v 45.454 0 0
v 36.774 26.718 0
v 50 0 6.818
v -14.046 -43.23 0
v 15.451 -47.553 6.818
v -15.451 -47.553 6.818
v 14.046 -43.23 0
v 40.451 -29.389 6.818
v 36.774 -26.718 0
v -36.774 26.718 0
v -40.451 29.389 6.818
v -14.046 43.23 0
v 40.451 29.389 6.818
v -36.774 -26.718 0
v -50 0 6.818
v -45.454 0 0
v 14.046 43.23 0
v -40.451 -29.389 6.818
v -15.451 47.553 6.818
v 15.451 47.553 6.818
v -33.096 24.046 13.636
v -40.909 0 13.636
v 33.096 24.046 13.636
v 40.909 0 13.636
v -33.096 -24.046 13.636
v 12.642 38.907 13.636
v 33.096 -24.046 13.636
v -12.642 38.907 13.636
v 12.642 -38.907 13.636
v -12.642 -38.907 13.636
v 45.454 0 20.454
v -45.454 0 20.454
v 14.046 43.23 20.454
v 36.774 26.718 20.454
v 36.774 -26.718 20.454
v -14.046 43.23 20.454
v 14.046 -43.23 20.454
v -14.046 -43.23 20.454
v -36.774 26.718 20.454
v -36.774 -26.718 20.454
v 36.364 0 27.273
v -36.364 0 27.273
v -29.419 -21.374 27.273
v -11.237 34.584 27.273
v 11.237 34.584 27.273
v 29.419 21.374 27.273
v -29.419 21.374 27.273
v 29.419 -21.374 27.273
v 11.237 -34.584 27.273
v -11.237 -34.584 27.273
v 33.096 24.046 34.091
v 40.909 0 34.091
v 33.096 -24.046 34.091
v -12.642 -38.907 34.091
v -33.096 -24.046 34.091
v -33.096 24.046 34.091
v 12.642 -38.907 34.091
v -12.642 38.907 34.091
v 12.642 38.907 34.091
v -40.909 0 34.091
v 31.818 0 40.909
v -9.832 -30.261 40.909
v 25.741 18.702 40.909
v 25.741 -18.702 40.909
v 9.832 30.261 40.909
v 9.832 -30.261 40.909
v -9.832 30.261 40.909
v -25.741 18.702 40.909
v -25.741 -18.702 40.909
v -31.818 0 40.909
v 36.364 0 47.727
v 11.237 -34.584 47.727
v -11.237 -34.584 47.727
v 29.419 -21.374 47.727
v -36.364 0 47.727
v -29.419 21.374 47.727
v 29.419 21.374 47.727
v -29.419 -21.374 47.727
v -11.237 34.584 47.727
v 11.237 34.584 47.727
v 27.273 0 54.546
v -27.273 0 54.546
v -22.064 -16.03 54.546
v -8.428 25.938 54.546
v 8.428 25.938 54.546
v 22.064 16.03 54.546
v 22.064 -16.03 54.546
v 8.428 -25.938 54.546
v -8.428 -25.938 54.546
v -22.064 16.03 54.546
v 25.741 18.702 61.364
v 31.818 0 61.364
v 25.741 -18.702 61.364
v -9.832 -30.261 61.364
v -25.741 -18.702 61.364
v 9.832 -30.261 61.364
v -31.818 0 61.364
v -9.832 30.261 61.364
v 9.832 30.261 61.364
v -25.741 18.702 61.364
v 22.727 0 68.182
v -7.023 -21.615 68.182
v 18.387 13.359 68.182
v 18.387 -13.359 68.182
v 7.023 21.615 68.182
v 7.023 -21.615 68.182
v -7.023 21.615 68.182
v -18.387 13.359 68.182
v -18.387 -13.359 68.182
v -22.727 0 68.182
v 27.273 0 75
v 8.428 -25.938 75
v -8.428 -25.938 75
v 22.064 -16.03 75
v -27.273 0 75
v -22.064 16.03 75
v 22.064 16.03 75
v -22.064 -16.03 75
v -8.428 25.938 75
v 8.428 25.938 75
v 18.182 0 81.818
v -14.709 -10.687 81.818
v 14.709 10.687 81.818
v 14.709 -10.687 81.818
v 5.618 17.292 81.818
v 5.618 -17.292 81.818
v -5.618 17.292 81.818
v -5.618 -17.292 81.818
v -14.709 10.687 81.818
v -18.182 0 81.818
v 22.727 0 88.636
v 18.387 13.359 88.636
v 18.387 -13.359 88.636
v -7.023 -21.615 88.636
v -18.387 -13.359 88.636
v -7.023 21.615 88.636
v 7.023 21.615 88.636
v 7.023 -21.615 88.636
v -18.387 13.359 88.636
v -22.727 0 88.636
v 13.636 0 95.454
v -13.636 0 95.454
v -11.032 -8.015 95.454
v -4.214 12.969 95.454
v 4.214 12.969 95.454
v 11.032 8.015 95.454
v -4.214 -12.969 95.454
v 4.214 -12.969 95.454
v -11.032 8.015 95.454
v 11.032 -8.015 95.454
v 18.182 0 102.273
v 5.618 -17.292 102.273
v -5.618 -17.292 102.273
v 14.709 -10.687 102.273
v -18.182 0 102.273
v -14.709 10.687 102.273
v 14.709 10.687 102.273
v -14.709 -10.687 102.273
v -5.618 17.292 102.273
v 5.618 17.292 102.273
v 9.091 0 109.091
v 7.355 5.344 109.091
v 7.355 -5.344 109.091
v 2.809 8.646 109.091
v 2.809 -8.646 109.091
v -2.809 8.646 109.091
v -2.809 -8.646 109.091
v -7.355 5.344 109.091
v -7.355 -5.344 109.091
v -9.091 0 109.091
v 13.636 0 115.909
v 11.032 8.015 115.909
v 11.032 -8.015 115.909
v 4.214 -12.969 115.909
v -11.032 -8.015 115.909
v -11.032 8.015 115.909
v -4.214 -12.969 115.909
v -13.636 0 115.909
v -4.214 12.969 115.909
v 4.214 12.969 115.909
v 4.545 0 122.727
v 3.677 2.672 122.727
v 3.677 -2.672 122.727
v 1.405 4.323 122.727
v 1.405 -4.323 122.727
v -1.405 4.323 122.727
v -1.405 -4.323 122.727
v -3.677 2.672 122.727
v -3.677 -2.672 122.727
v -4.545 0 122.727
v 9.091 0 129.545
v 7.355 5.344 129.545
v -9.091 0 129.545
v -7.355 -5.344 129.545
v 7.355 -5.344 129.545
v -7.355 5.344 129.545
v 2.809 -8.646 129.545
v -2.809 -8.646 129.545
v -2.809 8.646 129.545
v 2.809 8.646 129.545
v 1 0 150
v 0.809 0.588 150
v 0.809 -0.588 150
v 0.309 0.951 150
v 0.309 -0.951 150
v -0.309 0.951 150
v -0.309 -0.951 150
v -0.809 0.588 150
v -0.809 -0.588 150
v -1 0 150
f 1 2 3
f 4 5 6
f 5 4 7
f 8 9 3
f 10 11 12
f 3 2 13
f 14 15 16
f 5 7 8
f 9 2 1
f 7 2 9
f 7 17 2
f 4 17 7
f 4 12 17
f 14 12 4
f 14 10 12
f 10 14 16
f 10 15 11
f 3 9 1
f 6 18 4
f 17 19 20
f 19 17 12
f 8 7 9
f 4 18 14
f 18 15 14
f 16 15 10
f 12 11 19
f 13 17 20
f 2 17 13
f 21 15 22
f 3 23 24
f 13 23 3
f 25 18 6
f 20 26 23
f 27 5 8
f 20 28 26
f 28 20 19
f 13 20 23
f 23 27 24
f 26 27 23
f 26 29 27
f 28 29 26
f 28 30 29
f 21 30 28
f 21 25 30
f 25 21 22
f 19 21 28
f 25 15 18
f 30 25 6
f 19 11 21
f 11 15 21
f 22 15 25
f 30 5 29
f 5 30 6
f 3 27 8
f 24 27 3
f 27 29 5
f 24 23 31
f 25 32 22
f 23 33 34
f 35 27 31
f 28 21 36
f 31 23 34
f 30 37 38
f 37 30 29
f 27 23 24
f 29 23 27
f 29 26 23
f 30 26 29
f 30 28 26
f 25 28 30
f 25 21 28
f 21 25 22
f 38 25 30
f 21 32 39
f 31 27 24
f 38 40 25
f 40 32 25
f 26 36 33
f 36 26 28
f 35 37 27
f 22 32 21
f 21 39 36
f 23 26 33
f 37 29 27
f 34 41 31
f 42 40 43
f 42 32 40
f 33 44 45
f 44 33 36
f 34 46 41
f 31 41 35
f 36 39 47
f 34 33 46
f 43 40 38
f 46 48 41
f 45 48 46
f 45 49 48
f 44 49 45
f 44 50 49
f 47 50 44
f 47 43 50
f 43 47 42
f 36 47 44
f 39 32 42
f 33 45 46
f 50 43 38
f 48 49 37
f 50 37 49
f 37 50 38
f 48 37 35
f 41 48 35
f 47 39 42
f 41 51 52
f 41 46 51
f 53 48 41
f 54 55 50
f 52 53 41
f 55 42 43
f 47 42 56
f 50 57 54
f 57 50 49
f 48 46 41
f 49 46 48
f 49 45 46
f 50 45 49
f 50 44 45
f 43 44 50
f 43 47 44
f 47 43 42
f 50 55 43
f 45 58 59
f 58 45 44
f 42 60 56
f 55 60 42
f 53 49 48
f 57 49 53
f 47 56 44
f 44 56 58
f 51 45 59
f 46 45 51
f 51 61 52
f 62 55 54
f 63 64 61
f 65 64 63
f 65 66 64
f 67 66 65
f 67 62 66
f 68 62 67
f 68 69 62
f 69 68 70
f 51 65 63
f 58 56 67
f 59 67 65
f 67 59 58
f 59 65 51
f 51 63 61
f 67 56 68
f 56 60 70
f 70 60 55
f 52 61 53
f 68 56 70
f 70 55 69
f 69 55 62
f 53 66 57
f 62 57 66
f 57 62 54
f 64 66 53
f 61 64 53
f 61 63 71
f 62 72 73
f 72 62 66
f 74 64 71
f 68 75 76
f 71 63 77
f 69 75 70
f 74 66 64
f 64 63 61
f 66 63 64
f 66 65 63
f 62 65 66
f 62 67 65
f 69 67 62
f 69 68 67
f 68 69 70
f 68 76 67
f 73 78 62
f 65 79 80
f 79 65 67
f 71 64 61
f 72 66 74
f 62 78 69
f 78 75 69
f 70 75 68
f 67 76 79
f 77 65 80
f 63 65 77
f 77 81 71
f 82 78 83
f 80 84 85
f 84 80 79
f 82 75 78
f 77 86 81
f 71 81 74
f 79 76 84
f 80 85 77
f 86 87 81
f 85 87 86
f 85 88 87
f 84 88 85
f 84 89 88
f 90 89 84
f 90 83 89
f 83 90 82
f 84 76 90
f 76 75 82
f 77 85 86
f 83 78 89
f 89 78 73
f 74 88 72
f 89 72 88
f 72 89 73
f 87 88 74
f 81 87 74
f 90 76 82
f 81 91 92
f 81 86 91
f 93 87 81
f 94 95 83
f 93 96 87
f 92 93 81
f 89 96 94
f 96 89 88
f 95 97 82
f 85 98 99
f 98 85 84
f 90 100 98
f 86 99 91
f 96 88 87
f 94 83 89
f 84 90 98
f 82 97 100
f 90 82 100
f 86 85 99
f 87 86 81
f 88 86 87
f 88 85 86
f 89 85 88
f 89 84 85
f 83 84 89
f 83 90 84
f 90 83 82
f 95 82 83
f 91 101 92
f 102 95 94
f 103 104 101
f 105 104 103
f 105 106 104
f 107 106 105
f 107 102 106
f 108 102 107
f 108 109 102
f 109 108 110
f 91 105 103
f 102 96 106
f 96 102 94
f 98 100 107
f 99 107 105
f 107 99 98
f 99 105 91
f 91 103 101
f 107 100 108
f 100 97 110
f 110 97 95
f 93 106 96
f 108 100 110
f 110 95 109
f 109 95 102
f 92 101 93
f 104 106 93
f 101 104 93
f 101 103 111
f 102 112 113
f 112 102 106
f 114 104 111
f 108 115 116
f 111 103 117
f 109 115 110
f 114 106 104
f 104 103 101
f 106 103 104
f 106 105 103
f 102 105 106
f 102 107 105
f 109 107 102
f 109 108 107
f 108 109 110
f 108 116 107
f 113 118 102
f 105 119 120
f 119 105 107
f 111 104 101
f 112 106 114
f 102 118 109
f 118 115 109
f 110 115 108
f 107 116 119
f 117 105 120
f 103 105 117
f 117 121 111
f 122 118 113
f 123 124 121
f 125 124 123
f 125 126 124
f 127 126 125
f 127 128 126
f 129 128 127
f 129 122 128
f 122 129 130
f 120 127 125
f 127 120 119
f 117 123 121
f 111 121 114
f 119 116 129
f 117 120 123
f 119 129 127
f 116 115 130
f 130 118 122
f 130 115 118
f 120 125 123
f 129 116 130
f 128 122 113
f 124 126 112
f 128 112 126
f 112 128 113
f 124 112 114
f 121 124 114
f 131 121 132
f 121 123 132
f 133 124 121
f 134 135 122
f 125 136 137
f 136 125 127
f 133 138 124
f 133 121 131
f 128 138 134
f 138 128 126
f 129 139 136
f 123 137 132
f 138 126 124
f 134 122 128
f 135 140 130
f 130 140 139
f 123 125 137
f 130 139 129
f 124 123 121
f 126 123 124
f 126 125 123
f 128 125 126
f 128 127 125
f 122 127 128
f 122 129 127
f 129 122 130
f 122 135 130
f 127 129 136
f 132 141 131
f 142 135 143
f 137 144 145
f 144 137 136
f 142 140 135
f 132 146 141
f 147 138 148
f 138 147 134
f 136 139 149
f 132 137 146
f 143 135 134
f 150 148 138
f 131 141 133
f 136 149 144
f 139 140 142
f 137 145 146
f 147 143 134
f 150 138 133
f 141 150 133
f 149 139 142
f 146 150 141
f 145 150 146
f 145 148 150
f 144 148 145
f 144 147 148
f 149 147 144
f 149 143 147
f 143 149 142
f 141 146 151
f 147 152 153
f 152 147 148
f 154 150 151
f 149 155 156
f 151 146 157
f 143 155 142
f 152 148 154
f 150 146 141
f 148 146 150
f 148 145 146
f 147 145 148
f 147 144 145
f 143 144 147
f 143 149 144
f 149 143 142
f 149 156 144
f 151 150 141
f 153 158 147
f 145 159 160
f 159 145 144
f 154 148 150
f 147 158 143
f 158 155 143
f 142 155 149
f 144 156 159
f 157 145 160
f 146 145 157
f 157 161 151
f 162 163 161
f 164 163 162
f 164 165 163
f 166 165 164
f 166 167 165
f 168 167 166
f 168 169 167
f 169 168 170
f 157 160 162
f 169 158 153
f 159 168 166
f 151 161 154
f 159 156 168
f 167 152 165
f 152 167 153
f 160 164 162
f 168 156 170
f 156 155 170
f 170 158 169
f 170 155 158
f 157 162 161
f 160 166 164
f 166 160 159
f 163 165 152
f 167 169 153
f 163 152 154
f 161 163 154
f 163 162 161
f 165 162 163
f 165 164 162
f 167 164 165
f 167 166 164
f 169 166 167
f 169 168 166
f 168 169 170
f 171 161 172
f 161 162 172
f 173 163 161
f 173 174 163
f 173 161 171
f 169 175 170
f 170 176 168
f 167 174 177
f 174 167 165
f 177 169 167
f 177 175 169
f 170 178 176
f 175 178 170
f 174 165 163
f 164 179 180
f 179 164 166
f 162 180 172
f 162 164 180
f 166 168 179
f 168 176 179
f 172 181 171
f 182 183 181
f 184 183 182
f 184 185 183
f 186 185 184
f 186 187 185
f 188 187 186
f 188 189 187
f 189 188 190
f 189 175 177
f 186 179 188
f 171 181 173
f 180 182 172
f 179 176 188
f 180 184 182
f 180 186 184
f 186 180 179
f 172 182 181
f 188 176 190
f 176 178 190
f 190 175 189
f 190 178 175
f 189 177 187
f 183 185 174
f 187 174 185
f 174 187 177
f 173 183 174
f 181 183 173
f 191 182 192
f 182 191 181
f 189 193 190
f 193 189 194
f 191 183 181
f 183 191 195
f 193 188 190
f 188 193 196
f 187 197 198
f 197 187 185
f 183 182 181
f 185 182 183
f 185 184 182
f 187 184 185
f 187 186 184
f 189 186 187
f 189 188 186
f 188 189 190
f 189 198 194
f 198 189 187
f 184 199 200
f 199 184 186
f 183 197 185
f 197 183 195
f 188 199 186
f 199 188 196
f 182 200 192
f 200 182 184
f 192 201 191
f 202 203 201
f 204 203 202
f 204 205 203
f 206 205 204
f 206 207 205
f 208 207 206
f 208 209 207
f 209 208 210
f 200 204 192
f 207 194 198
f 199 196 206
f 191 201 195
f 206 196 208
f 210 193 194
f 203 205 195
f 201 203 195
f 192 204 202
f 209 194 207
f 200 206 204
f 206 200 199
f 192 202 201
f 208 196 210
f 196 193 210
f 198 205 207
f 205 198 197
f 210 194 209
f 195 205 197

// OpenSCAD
/*
 * Customizable Christmas Tree - https://www.thingiverse.com/thing:2694509
 * by Dennis Hofmann - https://www.thingiverse.com/mightynozzle/about
 * created 2017-12-06
 * version v1.0
 *
 * Changelog
 * --------------
 * v1.0:
 *      - final design
 * --------------
 * 
 * This work is licensed under the Creative Commons - Attribution - NonCommercial - ShareAlike license.
 * https://creativecommons.org/licenses/by-nc-sa/3.0/
 */


 // Parameter Section //
//-------------------//

// The height of the Tree.
tree_height_in_millimeter = 150; //[10:400]

// The bottom diameter of the Tree. Please ensure in the preview, that the angle of the segments are not too flat. You can correct it by decreasing the diameter and/or increasing the height Otherwise it will cause print fails if you are using vase mode or zero infill!
tree_bottom_diameter_in_millimeter = 100; //[10:300]

// Number of segments.
tree_segments = 10; //[3:100]

// Set the number of sides. A value between 3 and 10 looks like a low poly Tree. Greater than 24 looks like a round tree.
number_of_sides = 10;  //[3:100]

/* [Hidden] */
segment_h = tree_height_in_millimeter / (tree_segments + 1);
half_segment_h = segment_h / 2;
segment_w = tree_bottom_diameter_in_millimeter / (tree_segments + 1);
tree_d = tree_bottom_diameter_in_millimeter;


 // Program Section //
//-----------------//

color("green")
for(segment = [0:1:tree_segments - 1]) {
    bottom_d = tree_d - segment_w * (segment + 1) > 0 ? tree_d - segment_w * (segment + 1) : 2;
    middle_d = tree_d - segment_w * segment > 0 ? tree_d - segment_w * segment : 2;
    top_d = tree_d - segment_w * (segment + 2) > 0 ? tree_d - segment_w * (segment + 2) : 2;
    dynamic_half_segment_h = segment == tree_segments - 1 ? half_segment_h * 3 : half_segment_h;
    translate([0, 0, segment_h * segment]) {        
        cylinder(d1 = bottom_d, d2 = middle_d, h = half_segment_h, $fn = number_of_sides);
        translate([0, 0, half_segment_h]) {
            cylinder(d1 = middle_d, d2 = top_d, h = dynamic_half_segment_h, $fn = number_of_sides);
        }
    }
}
